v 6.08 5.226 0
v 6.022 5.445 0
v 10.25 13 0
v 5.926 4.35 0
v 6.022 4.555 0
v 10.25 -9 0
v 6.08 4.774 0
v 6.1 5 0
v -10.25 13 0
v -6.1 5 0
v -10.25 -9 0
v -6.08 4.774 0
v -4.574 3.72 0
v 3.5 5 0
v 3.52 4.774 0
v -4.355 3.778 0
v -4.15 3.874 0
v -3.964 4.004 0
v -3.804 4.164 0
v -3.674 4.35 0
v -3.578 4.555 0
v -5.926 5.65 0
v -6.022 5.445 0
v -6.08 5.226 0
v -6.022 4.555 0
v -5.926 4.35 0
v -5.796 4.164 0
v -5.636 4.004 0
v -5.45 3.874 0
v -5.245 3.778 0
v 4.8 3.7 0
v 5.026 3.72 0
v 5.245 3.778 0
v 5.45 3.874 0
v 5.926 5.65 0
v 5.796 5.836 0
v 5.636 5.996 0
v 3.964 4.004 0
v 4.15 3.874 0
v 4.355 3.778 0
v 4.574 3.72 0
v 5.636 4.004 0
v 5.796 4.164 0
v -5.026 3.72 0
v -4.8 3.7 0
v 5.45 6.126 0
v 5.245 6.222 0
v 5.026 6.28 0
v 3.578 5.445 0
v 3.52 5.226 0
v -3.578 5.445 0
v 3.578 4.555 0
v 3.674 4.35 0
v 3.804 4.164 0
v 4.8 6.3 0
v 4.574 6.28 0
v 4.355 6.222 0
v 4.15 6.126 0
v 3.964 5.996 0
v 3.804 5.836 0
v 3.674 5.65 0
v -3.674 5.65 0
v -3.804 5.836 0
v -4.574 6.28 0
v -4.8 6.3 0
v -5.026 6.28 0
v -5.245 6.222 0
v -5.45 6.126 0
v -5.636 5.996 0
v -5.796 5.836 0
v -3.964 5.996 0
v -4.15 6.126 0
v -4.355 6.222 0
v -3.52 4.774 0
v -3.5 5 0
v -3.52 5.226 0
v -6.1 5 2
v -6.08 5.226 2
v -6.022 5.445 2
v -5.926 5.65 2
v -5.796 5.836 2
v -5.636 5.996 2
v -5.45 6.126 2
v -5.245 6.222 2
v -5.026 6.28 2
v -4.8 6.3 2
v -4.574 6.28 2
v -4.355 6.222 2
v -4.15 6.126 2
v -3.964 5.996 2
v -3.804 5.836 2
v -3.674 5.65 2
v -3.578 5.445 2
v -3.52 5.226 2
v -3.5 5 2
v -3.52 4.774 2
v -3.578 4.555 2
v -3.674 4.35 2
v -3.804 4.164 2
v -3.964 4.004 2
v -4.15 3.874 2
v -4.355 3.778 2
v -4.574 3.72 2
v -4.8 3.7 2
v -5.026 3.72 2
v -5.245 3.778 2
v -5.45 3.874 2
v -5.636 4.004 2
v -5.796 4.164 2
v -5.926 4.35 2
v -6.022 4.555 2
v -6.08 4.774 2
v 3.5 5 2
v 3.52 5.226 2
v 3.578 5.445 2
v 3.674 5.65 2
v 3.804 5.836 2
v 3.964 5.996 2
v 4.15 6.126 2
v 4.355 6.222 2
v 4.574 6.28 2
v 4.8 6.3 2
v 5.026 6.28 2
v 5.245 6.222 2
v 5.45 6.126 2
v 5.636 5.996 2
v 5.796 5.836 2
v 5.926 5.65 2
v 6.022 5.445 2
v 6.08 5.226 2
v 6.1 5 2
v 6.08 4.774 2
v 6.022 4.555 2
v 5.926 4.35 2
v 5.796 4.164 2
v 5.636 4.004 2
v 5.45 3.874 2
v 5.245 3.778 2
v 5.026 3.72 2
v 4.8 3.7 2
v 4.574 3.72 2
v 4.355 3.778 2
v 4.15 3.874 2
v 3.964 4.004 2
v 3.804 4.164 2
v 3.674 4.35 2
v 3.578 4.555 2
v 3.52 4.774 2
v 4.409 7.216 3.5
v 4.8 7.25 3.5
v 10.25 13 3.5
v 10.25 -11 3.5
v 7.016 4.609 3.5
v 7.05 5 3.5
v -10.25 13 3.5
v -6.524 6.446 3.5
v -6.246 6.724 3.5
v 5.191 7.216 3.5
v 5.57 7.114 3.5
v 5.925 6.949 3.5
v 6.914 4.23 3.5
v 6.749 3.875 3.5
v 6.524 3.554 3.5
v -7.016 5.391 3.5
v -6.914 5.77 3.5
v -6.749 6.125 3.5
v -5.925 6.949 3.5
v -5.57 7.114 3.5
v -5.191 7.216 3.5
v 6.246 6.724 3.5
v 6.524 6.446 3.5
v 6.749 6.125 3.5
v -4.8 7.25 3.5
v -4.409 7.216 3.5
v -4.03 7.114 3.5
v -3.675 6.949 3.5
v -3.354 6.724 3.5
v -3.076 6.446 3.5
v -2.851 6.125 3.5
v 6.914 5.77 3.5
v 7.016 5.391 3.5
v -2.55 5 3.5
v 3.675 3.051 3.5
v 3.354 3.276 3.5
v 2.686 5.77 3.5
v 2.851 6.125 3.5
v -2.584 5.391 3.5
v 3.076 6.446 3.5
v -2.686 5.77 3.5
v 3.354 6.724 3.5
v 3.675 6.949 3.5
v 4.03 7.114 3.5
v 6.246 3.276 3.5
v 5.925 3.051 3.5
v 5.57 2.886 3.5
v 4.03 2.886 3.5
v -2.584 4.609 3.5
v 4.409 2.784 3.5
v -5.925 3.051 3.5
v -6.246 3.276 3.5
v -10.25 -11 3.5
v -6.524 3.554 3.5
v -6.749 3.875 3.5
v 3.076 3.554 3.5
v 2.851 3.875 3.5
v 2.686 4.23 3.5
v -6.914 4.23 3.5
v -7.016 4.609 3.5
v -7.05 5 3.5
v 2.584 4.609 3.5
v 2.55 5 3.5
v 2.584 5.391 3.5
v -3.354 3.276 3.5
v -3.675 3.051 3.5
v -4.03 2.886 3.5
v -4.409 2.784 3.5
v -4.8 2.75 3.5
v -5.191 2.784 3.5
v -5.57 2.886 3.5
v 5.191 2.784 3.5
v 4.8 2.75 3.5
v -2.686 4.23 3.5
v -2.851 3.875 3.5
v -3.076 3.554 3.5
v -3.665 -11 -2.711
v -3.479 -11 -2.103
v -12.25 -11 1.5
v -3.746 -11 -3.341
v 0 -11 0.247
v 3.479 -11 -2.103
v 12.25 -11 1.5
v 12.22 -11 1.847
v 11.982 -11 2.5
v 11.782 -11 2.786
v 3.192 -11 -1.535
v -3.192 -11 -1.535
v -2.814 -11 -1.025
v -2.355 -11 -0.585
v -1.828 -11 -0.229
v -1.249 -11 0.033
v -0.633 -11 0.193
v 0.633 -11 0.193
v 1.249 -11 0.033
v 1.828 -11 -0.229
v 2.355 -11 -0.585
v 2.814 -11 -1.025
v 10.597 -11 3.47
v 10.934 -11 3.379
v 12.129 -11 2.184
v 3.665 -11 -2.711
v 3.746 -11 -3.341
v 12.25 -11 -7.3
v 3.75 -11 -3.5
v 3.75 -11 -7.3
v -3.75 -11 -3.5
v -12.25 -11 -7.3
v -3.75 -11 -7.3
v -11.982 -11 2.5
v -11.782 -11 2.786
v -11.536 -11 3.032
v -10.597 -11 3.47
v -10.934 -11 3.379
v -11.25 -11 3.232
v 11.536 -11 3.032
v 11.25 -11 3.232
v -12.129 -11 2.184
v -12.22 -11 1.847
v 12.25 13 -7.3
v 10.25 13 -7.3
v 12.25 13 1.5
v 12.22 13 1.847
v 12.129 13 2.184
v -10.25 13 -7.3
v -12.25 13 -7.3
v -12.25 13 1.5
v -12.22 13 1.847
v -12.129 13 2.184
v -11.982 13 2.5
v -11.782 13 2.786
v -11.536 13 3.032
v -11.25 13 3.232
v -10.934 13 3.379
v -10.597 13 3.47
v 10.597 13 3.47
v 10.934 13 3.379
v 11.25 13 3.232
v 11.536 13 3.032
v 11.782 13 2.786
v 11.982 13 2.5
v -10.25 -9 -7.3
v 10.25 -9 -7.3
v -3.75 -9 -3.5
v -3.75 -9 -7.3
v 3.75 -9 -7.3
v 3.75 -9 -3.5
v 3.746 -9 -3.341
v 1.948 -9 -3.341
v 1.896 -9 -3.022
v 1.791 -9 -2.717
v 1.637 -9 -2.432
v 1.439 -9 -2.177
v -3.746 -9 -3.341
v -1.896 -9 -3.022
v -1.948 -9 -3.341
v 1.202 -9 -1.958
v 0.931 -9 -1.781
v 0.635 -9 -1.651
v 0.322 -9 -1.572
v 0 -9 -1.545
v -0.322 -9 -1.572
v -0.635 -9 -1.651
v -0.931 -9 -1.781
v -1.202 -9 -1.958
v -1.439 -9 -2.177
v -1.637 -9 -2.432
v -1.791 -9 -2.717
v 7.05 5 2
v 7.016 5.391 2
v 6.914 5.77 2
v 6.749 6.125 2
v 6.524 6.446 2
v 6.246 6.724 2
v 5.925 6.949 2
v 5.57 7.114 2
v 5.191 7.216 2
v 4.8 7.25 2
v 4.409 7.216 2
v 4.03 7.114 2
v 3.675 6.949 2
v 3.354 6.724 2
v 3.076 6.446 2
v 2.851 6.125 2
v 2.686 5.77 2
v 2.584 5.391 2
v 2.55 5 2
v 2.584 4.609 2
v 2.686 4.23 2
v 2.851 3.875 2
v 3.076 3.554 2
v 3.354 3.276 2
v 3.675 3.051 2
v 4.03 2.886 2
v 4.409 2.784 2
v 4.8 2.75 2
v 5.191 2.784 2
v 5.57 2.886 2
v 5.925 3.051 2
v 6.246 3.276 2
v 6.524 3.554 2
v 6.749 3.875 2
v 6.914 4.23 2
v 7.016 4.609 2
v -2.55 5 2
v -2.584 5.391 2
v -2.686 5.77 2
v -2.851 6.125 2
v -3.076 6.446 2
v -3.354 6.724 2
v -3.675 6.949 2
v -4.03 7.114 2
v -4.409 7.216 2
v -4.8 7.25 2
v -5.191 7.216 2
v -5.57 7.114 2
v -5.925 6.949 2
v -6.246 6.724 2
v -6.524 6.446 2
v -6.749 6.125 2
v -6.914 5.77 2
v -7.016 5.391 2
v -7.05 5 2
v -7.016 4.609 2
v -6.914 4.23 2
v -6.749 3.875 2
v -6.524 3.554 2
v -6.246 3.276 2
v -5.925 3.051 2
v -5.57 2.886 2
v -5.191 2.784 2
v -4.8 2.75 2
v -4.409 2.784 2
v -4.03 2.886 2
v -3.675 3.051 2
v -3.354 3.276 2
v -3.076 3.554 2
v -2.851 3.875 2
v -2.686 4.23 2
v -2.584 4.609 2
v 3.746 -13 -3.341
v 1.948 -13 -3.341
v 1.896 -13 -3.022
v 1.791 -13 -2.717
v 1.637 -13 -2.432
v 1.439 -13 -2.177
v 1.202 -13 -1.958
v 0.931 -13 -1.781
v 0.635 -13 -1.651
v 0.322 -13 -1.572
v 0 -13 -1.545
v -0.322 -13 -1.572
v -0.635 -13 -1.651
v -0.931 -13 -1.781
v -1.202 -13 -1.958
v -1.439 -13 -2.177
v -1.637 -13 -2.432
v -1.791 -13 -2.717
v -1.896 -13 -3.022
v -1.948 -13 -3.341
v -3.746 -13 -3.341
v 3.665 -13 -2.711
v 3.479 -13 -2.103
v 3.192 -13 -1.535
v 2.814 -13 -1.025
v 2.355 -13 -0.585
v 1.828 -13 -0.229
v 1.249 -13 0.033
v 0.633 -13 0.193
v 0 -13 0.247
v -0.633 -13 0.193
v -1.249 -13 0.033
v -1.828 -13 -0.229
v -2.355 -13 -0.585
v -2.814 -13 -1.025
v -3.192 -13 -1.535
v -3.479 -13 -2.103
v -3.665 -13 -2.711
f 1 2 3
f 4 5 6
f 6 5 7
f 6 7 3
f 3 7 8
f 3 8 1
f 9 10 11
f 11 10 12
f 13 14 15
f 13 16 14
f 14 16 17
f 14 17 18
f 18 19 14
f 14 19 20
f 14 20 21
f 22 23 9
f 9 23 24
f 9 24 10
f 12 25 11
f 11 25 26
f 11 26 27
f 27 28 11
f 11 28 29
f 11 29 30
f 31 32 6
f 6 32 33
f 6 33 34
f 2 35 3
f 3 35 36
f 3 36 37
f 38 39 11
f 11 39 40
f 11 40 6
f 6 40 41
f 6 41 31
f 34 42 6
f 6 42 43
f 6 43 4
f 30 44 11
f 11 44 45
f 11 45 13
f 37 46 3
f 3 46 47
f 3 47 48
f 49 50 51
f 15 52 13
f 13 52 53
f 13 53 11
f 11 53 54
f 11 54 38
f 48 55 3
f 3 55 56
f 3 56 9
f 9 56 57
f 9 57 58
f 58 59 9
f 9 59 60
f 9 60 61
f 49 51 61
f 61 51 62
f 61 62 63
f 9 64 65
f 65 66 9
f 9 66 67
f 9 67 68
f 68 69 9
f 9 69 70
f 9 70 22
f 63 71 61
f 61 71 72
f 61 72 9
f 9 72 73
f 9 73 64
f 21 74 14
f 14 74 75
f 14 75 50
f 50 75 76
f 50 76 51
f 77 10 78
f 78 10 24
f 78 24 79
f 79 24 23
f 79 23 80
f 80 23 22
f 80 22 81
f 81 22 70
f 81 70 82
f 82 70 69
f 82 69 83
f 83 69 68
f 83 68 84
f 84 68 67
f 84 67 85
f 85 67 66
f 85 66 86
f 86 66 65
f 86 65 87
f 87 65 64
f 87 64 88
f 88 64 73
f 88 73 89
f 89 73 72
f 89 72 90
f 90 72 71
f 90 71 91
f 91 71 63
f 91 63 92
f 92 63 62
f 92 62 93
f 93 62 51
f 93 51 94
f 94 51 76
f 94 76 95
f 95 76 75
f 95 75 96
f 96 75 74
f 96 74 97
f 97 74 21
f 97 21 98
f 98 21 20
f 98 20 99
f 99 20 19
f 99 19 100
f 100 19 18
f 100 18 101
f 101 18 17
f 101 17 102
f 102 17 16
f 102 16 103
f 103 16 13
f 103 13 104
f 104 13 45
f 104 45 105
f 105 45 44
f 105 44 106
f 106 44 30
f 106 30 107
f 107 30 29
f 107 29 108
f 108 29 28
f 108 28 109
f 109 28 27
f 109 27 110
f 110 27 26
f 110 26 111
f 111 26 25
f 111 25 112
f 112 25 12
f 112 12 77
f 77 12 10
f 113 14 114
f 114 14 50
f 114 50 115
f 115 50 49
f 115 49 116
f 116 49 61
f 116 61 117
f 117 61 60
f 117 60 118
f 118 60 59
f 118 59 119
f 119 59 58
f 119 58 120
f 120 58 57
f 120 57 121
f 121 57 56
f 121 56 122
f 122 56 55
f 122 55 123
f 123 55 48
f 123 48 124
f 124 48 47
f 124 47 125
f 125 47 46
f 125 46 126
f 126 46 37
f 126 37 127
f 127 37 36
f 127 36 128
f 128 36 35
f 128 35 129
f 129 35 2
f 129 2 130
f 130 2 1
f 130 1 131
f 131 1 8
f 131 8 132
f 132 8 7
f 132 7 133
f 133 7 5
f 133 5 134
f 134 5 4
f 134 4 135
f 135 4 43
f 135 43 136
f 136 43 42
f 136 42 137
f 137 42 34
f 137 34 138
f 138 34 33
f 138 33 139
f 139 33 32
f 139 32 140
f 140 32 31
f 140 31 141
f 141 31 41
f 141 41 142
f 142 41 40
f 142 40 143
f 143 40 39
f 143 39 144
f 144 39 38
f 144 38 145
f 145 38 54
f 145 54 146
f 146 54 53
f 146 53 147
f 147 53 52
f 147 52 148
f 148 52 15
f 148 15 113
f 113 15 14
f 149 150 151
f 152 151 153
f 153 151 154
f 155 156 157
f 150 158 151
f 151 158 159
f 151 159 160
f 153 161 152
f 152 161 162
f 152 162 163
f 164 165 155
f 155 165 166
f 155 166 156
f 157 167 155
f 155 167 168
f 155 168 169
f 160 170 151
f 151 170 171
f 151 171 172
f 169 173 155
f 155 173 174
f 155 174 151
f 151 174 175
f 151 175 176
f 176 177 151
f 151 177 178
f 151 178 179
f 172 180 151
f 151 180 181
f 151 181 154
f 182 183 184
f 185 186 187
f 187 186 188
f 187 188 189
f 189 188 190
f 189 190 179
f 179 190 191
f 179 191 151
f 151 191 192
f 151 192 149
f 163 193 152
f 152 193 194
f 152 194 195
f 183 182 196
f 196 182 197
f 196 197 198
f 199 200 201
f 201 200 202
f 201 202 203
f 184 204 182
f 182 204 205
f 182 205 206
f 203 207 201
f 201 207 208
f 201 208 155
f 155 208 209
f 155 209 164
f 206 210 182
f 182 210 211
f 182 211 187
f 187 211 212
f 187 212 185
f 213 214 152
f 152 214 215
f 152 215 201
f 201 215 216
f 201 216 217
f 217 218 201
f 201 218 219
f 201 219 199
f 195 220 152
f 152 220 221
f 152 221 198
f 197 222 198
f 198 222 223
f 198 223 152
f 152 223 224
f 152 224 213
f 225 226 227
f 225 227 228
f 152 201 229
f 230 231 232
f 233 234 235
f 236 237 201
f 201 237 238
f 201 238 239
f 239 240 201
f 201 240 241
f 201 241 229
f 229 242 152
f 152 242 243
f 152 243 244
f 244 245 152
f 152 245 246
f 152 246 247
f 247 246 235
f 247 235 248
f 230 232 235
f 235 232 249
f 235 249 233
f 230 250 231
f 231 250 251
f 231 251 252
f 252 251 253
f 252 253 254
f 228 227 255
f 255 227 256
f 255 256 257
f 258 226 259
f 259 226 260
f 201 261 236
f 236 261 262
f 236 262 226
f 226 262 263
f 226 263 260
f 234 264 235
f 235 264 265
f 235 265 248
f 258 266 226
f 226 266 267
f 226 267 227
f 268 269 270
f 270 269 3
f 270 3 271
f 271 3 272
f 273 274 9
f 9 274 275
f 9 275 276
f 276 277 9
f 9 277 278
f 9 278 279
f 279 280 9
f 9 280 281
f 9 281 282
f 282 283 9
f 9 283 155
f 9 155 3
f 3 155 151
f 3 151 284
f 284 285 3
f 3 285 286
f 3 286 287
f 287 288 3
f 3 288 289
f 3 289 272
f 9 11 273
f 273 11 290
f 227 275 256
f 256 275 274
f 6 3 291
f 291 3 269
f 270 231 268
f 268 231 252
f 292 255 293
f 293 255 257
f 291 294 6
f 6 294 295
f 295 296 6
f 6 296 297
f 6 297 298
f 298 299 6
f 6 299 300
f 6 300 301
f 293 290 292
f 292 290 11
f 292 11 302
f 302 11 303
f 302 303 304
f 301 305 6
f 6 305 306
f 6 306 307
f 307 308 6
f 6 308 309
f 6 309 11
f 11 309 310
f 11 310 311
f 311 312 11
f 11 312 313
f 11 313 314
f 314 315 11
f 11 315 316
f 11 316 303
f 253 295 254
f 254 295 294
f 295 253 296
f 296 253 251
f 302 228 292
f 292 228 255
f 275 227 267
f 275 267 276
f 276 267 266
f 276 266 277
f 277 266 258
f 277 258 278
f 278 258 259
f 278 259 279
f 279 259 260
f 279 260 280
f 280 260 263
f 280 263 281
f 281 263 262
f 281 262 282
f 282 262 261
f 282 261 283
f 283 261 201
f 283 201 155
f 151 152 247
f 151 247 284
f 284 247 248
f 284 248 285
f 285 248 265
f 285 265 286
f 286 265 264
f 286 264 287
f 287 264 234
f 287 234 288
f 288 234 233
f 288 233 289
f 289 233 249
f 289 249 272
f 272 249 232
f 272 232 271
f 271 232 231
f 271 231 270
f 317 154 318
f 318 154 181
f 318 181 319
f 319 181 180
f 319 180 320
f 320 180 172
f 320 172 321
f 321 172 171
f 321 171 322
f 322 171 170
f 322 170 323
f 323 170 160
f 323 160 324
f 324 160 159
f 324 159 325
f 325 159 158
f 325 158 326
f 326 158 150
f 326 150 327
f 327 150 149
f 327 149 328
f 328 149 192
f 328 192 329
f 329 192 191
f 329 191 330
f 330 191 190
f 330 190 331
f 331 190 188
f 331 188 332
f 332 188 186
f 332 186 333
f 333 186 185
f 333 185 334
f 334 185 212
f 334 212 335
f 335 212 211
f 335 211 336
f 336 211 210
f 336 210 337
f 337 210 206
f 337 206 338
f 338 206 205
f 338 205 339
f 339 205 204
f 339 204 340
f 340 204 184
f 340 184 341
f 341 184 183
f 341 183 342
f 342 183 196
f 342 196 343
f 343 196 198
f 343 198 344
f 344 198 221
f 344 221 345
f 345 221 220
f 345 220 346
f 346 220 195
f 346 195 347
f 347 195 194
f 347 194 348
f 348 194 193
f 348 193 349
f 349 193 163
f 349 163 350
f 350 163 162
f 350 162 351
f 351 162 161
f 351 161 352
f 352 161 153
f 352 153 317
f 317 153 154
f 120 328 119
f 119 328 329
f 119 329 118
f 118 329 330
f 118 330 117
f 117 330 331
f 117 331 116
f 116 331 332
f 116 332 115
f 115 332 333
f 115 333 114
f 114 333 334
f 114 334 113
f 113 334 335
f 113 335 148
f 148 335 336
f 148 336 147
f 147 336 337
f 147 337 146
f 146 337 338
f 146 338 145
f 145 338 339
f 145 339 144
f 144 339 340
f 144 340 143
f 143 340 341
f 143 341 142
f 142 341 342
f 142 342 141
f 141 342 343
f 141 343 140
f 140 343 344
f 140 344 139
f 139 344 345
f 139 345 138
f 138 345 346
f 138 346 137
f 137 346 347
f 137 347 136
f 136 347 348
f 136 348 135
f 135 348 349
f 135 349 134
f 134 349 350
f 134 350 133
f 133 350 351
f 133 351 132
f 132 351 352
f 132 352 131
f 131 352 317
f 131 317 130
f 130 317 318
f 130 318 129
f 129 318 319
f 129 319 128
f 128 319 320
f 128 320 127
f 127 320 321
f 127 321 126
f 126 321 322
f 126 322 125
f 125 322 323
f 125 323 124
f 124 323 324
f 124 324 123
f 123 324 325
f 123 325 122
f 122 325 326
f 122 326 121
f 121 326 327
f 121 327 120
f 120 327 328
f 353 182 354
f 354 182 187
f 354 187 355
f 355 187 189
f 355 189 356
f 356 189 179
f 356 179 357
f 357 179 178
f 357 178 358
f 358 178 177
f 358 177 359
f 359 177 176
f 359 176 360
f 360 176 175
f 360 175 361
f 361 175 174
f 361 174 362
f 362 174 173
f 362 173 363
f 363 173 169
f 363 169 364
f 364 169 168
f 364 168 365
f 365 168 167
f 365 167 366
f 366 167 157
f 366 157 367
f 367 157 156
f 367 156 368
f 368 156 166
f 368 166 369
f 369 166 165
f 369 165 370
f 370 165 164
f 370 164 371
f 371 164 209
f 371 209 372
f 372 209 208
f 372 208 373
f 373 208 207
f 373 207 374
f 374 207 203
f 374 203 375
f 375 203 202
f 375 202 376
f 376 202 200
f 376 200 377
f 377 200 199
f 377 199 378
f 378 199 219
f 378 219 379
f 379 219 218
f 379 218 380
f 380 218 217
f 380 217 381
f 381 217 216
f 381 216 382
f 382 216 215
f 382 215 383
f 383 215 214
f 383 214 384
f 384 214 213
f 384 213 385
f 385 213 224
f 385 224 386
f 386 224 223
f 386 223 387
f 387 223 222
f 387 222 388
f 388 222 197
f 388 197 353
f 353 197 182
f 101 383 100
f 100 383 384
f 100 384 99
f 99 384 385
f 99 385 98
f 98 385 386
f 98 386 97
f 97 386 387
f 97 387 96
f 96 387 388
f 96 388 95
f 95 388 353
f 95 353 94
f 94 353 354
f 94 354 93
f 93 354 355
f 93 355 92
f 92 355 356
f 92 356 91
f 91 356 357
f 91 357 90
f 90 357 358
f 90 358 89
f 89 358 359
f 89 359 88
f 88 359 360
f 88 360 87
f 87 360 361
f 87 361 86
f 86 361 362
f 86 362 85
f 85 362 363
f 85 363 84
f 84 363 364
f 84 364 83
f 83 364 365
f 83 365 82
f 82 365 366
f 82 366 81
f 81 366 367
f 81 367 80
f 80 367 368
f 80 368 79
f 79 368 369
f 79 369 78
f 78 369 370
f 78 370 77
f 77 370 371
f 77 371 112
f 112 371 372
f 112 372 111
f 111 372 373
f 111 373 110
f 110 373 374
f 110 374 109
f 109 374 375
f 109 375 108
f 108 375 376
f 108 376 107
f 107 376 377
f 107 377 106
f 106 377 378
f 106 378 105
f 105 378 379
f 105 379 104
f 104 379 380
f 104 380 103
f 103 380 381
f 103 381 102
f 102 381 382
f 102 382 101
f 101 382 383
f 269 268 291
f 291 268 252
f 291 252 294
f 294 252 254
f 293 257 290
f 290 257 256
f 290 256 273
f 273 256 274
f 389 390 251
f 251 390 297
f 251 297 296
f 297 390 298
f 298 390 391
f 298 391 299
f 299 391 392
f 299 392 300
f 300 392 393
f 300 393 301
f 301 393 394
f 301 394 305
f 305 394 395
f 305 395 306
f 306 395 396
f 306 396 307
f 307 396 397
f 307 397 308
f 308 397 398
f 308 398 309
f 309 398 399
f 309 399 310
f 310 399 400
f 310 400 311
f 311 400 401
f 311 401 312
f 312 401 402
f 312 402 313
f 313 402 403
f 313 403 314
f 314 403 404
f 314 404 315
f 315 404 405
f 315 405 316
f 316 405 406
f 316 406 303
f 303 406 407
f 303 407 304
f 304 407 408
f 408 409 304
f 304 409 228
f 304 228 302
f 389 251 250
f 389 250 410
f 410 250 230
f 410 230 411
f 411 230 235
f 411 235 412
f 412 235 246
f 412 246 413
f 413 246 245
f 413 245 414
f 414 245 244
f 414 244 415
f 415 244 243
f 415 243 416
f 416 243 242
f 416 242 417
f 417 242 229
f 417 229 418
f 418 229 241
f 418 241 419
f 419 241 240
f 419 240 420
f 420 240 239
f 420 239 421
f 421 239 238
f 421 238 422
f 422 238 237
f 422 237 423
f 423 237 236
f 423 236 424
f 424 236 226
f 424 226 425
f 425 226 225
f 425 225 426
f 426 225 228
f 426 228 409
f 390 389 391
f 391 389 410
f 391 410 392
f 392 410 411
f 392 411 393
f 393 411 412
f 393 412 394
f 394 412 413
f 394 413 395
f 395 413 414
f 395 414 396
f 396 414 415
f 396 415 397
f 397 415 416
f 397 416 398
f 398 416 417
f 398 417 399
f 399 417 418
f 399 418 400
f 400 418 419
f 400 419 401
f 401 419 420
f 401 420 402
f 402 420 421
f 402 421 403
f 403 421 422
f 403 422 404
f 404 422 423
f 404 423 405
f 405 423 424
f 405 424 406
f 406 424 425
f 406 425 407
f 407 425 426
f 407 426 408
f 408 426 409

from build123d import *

# Parameters (mm, degrees)
SKETCH1_W           = 20.5
SKETCH1_H           = 24
SKETCH1_R           = 1.3
BOSS_EXTRUDE1_DEPTH = 3.5
SKETCH2_W           = 2
SKETCH2_H           = 18.5
BOSS_EXTRUDE2_DEPTH = 24
SKETCH3_W           = 6.5
SKETCH3_H           = 10.5
BOSS_EXTRUDE3_DEPTH = 2
FILLET1_R           = 3.5
FILLET2_R           = 2
SKETCH4_R           = 2.25
CUT_EXTRUDE1_DEPTH  = 1.5
FILLET4_R           = 3
SKETCH13_W          = 24.5
SKETCH13_H          = 7.7
CUT_EXTRUDE6_DEPTH  = 25
BOSS_EXTRUDE6_START = -2
BOSS_EXTRUDE6_DEPTH = 2
BOSS_EXTRUDE7_DEPTH = 2


with BuildPart() as part:
    # Sketch1 → Boss-Extrude1 (new body)
    with BuildSketch(Plane.XY):
        with Locations((0, 1)):
            Rectangle(SKETCH1_W, SKETCH1_H)
        with Locations((-4.8, 5)):
            Circle(SKETCH1_R, mode=Mode.SUBTRACT)
        with Locations((4.8, 5)):
            Circle(SKETCH1_R, mode=Mode.SUBTRACT)
    extrude(amount=BOSS_EXTRUDE1_DEPTH)

    # Sketch2 → Boss-Extrude2 (add)
    with BuildSketch(Plane(origin=(0, -11, 0), x_dir=(-1, 0, 0), z_dir=(0, -1, 0))):
        with Locations((11.25, 5.75)):
            Rectangle(SKETCH2_W, SKETCH2_H)
        with Locations((-11.25, 5.75)):
            Rectangle(SKETCH2_W, SKETCH2_H)
    extrude(amount=-BOSS_EXTRUDE2_DEPTH)

    # Sketch3 → Boss-Extrude3 (add)
    with BuildSketch(Plane.XZ.offset(11)):
        with Locations((-7, -5.25)):
            Rectangle(SKETCH3_W, SKETCH3_H)
        with Locations((7, -5.25)):
            Rectangle(SKETCH3_W, SKETCH3_H)
    extrude(amount=-BOSS_EXTRUDE3_DEPTH)

    # Fillet1
    fillet1_edges = [part.edges().sort_by_distance(p)[0] for p in [
        (-3.75, -10, 0),
        (3.75, -10, 0),
    ]]
    fillet(fillet1_edges, radius=FILLET1_R)

    # Fillet2
    fillet2_edges = [part.edges().sort_by_distance(p)[0] for p in [
        (-12.25, 1, 3.5),
        (12.25, 1, 3.5),
    ]]
    fillet(fillet2_edges, radius=FILLET2_R)

    # Sketch4 → Cut-Extrude1 (cut)
    with BuildSketch(Plane.XY.offset(3.5)):
        with Locations((-4.8, 5)):
            Circle(SKETCH4_R)
        with Locations((4.8, 5)):
            Circle(SKETCH4_R)
    extrude(amount=-CUT_EXTRUDE1_DEPTH, mode=Mode.SUBTRACT)

    # Fillet4
    fillet4_edges = [part.edges().sort_by_distance(p)[0] for p in [
        (-11.25, 13, -15),
        (11.25, 13, -15),
        (11.25, -11, -15),
    ]]
    fillet(fillet4_edges, radius=FILLET4_R)

    # Sketch13 → Cut-Extrude6 (cut, through all)
    with BuildSketch(Plane(origin=(0, 13, 0), x_dir=(1, 0, 0), z_dir=(0, 1, 0))):
        with Locations((0, 11.15)):
            Rectangle(SKETCH13_W, SKETCH13_H)
    extrude(amount=-CUT_EXTRUDE6_DEPTH, mode=Mode.SUBTRACT)

    # Sketch14 → Boss-Extrude6 (add)
    with BuildSketch(Plane.XZ.offset(11).offset(BOSS_EXTRUDE6_START)):
        with BuildLine():
            Line((-0.25, 0), (0.25, 0))
            ThreePointArc((0.25, 0), (2.668052064, -0.969580229), (3.746392428, -3.341129019))
            Line((3.746392428, -3.341129019), (1.948302942, -3.341129019))
            ThreePointArc((1.948302942, -3.341129019), (0, -1.545230361), (-1.948302942, -3.341129019))
            Line((-1.948302942, -3.341129019), (-3.746392428, -3.341129019))
            ThreePointArc((-3.746392428, -3.341129019), (-2.668052064, -0.969580229), (-0.25, 0))
        make_face()
    extrude(amount=BOSS_EXTRUDE6_DEPTH)

    # Sketch15 → Boss-Extrude7 (add)
    with BuildSketch(Plane(origin=(0, -11, 0), x_dir=(-1, 0, 0), z_dir=(0, -1, 0))):
        with BuildLine():
            Line((1.948302942, 3.341129019), (3.746392428, 3.341129019))
            ThreePointArc((3.746392428, 3.341129019), (0, -0.246607561), (-3.746392428, 3.341129019))
            Line((-3.746392428, 3.341129019), (-1.948302942, 3.341129019))
            ThreePointArc((-1.948302942, 3.341129019), (0, 1.545230361), (1.948302942, 3.341129019))
        make_face()
    extrude(amount=BOSS_EXTRUDE7_DEPTH)


solid = part.part
